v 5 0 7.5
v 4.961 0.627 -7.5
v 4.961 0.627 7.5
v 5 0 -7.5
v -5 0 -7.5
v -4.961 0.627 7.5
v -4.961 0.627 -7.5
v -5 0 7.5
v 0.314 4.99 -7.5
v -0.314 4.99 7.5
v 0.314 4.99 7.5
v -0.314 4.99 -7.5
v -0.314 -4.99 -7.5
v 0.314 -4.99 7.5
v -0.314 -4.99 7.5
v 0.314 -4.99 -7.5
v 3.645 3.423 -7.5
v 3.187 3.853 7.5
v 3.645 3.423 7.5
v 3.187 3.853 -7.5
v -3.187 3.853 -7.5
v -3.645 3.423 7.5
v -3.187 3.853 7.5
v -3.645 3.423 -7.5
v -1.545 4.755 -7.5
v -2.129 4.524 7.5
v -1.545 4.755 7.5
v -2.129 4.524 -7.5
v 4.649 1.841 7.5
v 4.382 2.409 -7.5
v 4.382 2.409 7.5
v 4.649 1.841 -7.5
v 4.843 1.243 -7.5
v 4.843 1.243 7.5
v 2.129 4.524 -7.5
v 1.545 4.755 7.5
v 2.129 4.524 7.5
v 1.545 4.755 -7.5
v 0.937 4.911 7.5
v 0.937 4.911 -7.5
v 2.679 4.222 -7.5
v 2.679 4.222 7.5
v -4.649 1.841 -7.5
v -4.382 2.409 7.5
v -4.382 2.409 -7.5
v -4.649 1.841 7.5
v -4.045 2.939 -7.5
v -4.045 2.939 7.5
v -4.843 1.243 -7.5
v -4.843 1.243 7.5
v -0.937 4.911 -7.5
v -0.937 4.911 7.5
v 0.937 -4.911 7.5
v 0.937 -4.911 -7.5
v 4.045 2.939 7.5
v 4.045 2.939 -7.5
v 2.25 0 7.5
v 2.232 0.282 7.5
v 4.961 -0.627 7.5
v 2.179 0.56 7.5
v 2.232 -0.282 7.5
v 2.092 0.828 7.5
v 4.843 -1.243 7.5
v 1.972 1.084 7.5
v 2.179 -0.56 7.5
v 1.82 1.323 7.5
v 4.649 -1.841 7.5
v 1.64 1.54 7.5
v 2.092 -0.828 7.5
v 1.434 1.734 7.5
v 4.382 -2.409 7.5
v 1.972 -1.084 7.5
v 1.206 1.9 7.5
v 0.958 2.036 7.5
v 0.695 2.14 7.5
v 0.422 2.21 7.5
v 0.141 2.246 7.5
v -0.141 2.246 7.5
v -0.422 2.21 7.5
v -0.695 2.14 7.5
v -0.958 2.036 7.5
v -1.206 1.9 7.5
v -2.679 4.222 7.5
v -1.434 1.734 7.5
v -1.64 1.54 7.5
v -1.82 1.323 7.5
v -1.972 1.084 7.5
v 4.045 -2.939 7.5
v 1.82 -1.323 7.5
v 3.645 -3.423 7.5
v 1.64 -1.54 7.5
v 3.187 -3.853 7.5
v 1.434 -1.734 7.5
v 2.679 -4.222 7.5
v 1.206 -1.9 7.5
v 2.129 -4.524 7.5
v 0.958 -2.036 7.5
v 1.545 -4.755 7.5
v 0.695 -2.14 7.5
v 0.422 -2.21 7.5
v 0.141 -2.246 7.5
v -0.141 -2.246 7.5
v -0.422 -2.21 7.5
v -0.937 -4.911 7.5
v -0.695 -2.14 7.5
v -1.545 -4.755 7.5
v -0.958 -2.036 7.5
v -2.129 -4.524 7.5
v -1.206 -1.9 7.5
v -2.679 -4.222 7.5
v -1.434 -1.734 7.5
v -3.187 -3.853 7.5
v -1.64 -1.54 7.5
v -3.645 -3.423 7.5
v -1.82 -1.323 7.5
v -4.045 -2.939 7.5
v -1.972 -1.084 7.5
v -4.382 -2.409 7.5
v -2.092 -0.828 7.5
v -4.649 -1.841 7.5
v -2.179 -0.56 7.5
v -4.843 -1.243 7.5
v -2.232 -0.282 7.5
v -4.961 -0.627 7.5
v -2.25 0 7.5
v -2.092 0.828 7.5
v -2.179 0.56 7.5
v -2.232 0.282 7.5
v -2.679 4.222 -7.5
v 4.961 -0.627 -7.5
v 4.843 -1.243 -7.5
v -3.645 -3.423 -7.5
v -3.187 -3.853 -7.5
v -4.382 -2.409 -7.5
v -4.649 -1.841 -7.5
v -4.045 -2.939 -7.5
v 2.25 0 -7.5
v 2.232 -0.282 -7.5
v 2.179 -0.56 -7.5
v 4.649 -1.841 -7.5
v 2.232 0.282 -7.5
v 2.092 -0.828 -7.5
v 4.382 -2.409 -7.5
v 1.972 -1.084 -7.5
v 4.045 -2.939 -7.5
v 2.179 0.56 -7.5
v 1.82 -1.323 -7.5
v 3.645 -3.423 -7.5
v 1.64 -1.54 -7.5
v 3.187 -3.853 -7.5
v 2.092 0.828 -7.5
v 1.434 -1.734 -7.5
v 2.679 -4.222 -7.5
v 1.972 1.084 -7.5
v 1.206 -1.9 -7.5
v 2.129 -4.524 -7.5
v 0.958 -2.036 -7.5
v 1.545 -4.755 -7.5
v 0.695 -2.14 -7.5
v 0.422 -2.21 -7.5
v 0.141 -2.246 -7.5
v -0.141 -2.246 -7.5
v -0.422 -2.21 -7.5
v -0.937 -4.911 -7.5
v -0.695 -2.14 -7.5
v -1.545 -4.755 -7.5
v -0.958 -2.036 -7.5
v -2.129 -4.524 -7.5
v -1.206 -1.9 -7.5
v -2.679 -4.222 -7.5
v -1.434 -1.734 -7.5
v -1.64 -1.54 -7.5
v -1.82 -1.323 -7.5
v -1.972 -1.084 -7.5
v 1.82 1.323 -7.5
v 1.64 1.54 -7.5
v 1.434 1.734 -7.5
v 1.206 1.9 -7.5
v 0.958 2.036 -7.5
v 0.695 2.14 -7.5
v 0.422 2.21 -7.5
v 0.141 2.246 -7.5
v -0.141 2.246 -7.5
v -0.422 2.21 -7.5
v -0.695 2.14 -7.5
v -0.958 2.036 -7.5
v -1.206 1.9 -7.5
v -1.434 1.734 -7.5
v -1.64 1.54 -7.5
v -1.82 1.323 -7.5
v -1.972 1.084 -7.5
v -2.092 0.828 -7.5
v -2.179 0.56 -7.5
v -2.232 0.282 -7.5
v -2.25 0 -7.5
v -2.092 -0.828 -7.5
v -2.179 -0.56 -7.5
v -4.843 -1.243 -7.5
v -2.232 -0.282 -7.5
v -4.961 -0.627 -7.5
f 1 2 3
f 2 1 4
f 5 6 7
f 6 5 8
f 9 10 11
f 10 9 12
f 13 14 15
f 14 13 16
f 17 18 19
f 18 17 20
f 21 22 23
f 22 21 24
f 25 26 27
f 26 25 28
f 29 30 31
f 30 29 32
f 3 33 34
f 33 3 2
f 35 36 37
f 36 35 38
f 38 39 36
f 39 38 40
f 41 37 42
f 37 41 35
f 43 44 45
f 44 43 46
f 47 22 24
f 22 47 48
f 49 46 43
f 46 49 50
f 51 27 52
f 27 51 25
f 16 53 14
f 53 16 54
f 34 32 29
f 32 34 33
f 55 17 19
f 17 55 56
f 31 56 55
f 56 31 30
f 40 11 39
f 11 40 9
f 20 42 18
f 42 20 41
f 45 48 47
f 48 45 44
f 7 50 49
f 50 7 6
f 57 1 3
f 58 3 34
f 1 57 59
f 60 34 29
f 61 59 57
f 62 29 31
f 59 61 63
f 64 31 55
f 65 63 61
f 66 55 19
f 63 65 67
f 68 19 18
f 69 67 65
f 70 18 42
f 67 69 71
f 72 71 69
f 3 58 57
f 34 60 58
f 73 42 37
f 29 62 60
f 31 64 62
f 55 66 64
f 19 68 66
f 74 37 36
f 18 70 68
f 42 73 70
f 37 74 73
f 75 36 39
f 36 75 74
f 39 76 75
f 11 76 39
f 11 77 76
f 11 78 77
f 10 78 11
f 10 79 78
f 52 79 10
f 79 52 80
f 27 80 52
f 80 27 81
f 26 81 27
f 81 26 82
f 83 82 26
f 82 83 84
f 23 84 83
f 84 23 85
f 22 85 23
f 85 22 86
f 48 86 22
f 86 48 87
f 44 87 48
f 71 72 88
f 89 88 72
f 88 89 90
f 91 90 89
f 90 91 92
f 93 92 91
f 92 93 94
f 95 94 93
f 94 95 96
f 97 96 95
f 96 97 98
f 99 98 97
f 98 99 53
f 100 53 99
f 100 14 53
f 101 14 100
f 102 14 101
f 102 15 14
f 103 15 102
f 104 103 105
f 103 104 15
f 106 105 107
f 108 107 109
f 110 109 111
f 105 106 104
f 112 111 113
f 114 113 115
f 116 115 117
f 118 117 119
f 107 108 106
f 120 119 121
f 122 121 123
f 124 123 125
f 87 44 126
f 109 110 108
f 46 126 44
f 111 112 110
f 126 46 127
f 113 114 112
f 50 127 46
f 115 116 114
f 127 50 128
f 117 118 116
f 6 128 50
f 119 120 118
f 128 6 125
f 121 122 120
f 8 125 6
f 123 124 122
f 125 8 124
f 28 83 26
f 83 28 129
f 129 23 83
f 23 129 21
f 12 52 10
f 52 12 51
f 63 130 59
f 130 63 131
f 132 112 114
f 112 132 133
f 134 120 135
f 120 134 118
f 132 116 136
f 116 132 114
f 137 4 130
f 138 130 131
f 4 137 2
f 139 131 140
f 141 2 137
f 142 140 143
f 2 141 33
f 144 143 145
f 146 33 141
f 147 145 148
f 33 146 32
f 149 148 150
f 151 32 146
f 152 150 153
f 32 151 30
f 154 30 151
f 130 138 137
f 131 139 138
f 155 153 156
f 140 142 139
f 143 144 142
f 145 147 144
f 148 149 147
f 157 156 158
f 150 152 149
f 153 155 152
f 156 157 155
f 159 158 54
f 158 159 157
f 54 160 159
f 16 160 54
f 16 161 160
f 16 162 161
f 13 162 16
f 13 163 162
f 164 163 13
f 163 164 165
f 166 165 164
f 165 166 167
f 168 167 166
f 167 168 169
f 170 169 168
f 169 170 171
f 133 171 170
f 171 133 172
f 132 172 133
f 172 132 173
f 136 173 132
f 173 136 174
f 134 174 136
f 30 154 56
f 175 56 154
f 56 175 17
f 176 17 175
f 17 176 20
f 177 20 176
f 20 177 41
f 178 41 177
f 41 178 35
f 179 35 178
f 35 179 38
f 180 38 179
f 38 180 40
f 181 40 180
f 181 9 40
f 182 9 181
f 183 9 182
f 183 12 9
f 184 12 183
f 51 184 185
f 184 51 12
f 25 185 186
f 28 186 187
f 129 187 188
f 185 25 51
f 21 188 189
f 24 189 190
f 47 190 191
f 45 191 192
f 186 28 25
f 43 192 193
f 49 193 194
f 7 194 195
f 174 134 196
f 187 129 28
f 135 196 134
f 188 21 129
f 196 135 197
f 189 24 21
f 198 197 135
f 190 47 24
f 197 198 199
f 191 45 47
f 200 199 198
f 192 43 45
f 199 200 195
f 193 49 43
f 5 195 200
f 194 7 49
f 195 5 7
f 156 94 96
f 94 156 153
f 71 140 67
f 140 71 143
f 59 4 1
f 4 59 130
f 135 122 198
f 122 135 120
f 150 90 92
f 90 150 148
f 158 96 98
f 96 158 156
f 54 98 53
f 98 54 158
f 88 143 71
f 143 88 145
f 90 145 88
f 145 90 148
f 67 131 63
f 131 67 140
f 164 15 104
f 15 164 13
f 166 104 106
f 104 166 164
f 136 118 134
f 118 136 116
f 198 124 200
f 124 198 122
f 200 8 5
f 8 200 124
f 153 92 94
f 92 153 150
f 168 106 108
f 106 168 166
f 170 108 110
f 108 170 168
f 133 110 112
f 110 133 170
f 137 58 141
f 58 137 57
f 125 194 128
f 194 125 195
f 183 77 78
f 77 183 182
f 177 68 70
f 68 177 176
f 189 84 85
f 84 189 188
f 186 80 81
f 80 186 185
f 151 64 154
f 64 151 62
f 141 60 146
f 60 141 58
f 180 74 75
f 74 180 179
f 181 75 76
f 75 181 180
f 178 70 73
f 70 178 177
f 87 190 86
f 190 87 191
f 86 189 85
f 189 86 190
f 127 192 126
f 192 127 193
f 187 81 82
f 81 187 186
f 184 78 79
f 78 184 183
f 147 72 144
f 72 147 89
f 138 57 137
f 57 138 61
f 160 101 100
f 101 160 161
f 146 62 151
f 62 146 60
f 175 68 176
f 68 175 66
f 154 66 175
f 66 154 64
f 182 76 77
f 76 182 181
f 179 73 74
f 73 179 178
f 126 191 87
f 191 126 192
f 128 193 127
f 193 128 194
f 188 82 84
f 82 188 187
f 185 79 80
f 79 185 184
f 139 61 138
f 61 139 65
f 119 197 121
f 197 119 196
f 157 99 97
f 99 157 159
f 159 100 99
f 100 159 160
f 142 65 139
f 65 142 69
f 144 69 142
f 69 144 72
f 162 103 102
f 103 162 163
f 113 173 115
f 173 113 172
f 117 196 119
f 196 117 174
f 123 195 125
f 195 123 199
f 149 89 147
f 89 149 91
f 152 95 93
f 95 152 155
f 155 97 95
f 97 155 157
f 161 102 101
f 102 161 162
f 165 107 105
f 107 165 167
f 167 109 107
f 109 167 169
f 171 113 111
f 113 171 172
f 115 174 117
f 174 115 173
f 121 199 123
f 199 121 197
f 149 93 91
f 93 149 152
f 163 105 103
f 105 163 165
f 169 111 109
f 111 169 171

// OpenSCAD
$fn = 50;


difference() {
	union() {
		translate(v = [0, 0, -7.5000000000]) {
			cylinder(h = 15, r = 5.0000000000);
		}
	}
	union() {
		translate(v = [0, 0, -100.0000000000]) {
			cylinder(h = 200, r = 2.2500000000);
		}
	}
}
